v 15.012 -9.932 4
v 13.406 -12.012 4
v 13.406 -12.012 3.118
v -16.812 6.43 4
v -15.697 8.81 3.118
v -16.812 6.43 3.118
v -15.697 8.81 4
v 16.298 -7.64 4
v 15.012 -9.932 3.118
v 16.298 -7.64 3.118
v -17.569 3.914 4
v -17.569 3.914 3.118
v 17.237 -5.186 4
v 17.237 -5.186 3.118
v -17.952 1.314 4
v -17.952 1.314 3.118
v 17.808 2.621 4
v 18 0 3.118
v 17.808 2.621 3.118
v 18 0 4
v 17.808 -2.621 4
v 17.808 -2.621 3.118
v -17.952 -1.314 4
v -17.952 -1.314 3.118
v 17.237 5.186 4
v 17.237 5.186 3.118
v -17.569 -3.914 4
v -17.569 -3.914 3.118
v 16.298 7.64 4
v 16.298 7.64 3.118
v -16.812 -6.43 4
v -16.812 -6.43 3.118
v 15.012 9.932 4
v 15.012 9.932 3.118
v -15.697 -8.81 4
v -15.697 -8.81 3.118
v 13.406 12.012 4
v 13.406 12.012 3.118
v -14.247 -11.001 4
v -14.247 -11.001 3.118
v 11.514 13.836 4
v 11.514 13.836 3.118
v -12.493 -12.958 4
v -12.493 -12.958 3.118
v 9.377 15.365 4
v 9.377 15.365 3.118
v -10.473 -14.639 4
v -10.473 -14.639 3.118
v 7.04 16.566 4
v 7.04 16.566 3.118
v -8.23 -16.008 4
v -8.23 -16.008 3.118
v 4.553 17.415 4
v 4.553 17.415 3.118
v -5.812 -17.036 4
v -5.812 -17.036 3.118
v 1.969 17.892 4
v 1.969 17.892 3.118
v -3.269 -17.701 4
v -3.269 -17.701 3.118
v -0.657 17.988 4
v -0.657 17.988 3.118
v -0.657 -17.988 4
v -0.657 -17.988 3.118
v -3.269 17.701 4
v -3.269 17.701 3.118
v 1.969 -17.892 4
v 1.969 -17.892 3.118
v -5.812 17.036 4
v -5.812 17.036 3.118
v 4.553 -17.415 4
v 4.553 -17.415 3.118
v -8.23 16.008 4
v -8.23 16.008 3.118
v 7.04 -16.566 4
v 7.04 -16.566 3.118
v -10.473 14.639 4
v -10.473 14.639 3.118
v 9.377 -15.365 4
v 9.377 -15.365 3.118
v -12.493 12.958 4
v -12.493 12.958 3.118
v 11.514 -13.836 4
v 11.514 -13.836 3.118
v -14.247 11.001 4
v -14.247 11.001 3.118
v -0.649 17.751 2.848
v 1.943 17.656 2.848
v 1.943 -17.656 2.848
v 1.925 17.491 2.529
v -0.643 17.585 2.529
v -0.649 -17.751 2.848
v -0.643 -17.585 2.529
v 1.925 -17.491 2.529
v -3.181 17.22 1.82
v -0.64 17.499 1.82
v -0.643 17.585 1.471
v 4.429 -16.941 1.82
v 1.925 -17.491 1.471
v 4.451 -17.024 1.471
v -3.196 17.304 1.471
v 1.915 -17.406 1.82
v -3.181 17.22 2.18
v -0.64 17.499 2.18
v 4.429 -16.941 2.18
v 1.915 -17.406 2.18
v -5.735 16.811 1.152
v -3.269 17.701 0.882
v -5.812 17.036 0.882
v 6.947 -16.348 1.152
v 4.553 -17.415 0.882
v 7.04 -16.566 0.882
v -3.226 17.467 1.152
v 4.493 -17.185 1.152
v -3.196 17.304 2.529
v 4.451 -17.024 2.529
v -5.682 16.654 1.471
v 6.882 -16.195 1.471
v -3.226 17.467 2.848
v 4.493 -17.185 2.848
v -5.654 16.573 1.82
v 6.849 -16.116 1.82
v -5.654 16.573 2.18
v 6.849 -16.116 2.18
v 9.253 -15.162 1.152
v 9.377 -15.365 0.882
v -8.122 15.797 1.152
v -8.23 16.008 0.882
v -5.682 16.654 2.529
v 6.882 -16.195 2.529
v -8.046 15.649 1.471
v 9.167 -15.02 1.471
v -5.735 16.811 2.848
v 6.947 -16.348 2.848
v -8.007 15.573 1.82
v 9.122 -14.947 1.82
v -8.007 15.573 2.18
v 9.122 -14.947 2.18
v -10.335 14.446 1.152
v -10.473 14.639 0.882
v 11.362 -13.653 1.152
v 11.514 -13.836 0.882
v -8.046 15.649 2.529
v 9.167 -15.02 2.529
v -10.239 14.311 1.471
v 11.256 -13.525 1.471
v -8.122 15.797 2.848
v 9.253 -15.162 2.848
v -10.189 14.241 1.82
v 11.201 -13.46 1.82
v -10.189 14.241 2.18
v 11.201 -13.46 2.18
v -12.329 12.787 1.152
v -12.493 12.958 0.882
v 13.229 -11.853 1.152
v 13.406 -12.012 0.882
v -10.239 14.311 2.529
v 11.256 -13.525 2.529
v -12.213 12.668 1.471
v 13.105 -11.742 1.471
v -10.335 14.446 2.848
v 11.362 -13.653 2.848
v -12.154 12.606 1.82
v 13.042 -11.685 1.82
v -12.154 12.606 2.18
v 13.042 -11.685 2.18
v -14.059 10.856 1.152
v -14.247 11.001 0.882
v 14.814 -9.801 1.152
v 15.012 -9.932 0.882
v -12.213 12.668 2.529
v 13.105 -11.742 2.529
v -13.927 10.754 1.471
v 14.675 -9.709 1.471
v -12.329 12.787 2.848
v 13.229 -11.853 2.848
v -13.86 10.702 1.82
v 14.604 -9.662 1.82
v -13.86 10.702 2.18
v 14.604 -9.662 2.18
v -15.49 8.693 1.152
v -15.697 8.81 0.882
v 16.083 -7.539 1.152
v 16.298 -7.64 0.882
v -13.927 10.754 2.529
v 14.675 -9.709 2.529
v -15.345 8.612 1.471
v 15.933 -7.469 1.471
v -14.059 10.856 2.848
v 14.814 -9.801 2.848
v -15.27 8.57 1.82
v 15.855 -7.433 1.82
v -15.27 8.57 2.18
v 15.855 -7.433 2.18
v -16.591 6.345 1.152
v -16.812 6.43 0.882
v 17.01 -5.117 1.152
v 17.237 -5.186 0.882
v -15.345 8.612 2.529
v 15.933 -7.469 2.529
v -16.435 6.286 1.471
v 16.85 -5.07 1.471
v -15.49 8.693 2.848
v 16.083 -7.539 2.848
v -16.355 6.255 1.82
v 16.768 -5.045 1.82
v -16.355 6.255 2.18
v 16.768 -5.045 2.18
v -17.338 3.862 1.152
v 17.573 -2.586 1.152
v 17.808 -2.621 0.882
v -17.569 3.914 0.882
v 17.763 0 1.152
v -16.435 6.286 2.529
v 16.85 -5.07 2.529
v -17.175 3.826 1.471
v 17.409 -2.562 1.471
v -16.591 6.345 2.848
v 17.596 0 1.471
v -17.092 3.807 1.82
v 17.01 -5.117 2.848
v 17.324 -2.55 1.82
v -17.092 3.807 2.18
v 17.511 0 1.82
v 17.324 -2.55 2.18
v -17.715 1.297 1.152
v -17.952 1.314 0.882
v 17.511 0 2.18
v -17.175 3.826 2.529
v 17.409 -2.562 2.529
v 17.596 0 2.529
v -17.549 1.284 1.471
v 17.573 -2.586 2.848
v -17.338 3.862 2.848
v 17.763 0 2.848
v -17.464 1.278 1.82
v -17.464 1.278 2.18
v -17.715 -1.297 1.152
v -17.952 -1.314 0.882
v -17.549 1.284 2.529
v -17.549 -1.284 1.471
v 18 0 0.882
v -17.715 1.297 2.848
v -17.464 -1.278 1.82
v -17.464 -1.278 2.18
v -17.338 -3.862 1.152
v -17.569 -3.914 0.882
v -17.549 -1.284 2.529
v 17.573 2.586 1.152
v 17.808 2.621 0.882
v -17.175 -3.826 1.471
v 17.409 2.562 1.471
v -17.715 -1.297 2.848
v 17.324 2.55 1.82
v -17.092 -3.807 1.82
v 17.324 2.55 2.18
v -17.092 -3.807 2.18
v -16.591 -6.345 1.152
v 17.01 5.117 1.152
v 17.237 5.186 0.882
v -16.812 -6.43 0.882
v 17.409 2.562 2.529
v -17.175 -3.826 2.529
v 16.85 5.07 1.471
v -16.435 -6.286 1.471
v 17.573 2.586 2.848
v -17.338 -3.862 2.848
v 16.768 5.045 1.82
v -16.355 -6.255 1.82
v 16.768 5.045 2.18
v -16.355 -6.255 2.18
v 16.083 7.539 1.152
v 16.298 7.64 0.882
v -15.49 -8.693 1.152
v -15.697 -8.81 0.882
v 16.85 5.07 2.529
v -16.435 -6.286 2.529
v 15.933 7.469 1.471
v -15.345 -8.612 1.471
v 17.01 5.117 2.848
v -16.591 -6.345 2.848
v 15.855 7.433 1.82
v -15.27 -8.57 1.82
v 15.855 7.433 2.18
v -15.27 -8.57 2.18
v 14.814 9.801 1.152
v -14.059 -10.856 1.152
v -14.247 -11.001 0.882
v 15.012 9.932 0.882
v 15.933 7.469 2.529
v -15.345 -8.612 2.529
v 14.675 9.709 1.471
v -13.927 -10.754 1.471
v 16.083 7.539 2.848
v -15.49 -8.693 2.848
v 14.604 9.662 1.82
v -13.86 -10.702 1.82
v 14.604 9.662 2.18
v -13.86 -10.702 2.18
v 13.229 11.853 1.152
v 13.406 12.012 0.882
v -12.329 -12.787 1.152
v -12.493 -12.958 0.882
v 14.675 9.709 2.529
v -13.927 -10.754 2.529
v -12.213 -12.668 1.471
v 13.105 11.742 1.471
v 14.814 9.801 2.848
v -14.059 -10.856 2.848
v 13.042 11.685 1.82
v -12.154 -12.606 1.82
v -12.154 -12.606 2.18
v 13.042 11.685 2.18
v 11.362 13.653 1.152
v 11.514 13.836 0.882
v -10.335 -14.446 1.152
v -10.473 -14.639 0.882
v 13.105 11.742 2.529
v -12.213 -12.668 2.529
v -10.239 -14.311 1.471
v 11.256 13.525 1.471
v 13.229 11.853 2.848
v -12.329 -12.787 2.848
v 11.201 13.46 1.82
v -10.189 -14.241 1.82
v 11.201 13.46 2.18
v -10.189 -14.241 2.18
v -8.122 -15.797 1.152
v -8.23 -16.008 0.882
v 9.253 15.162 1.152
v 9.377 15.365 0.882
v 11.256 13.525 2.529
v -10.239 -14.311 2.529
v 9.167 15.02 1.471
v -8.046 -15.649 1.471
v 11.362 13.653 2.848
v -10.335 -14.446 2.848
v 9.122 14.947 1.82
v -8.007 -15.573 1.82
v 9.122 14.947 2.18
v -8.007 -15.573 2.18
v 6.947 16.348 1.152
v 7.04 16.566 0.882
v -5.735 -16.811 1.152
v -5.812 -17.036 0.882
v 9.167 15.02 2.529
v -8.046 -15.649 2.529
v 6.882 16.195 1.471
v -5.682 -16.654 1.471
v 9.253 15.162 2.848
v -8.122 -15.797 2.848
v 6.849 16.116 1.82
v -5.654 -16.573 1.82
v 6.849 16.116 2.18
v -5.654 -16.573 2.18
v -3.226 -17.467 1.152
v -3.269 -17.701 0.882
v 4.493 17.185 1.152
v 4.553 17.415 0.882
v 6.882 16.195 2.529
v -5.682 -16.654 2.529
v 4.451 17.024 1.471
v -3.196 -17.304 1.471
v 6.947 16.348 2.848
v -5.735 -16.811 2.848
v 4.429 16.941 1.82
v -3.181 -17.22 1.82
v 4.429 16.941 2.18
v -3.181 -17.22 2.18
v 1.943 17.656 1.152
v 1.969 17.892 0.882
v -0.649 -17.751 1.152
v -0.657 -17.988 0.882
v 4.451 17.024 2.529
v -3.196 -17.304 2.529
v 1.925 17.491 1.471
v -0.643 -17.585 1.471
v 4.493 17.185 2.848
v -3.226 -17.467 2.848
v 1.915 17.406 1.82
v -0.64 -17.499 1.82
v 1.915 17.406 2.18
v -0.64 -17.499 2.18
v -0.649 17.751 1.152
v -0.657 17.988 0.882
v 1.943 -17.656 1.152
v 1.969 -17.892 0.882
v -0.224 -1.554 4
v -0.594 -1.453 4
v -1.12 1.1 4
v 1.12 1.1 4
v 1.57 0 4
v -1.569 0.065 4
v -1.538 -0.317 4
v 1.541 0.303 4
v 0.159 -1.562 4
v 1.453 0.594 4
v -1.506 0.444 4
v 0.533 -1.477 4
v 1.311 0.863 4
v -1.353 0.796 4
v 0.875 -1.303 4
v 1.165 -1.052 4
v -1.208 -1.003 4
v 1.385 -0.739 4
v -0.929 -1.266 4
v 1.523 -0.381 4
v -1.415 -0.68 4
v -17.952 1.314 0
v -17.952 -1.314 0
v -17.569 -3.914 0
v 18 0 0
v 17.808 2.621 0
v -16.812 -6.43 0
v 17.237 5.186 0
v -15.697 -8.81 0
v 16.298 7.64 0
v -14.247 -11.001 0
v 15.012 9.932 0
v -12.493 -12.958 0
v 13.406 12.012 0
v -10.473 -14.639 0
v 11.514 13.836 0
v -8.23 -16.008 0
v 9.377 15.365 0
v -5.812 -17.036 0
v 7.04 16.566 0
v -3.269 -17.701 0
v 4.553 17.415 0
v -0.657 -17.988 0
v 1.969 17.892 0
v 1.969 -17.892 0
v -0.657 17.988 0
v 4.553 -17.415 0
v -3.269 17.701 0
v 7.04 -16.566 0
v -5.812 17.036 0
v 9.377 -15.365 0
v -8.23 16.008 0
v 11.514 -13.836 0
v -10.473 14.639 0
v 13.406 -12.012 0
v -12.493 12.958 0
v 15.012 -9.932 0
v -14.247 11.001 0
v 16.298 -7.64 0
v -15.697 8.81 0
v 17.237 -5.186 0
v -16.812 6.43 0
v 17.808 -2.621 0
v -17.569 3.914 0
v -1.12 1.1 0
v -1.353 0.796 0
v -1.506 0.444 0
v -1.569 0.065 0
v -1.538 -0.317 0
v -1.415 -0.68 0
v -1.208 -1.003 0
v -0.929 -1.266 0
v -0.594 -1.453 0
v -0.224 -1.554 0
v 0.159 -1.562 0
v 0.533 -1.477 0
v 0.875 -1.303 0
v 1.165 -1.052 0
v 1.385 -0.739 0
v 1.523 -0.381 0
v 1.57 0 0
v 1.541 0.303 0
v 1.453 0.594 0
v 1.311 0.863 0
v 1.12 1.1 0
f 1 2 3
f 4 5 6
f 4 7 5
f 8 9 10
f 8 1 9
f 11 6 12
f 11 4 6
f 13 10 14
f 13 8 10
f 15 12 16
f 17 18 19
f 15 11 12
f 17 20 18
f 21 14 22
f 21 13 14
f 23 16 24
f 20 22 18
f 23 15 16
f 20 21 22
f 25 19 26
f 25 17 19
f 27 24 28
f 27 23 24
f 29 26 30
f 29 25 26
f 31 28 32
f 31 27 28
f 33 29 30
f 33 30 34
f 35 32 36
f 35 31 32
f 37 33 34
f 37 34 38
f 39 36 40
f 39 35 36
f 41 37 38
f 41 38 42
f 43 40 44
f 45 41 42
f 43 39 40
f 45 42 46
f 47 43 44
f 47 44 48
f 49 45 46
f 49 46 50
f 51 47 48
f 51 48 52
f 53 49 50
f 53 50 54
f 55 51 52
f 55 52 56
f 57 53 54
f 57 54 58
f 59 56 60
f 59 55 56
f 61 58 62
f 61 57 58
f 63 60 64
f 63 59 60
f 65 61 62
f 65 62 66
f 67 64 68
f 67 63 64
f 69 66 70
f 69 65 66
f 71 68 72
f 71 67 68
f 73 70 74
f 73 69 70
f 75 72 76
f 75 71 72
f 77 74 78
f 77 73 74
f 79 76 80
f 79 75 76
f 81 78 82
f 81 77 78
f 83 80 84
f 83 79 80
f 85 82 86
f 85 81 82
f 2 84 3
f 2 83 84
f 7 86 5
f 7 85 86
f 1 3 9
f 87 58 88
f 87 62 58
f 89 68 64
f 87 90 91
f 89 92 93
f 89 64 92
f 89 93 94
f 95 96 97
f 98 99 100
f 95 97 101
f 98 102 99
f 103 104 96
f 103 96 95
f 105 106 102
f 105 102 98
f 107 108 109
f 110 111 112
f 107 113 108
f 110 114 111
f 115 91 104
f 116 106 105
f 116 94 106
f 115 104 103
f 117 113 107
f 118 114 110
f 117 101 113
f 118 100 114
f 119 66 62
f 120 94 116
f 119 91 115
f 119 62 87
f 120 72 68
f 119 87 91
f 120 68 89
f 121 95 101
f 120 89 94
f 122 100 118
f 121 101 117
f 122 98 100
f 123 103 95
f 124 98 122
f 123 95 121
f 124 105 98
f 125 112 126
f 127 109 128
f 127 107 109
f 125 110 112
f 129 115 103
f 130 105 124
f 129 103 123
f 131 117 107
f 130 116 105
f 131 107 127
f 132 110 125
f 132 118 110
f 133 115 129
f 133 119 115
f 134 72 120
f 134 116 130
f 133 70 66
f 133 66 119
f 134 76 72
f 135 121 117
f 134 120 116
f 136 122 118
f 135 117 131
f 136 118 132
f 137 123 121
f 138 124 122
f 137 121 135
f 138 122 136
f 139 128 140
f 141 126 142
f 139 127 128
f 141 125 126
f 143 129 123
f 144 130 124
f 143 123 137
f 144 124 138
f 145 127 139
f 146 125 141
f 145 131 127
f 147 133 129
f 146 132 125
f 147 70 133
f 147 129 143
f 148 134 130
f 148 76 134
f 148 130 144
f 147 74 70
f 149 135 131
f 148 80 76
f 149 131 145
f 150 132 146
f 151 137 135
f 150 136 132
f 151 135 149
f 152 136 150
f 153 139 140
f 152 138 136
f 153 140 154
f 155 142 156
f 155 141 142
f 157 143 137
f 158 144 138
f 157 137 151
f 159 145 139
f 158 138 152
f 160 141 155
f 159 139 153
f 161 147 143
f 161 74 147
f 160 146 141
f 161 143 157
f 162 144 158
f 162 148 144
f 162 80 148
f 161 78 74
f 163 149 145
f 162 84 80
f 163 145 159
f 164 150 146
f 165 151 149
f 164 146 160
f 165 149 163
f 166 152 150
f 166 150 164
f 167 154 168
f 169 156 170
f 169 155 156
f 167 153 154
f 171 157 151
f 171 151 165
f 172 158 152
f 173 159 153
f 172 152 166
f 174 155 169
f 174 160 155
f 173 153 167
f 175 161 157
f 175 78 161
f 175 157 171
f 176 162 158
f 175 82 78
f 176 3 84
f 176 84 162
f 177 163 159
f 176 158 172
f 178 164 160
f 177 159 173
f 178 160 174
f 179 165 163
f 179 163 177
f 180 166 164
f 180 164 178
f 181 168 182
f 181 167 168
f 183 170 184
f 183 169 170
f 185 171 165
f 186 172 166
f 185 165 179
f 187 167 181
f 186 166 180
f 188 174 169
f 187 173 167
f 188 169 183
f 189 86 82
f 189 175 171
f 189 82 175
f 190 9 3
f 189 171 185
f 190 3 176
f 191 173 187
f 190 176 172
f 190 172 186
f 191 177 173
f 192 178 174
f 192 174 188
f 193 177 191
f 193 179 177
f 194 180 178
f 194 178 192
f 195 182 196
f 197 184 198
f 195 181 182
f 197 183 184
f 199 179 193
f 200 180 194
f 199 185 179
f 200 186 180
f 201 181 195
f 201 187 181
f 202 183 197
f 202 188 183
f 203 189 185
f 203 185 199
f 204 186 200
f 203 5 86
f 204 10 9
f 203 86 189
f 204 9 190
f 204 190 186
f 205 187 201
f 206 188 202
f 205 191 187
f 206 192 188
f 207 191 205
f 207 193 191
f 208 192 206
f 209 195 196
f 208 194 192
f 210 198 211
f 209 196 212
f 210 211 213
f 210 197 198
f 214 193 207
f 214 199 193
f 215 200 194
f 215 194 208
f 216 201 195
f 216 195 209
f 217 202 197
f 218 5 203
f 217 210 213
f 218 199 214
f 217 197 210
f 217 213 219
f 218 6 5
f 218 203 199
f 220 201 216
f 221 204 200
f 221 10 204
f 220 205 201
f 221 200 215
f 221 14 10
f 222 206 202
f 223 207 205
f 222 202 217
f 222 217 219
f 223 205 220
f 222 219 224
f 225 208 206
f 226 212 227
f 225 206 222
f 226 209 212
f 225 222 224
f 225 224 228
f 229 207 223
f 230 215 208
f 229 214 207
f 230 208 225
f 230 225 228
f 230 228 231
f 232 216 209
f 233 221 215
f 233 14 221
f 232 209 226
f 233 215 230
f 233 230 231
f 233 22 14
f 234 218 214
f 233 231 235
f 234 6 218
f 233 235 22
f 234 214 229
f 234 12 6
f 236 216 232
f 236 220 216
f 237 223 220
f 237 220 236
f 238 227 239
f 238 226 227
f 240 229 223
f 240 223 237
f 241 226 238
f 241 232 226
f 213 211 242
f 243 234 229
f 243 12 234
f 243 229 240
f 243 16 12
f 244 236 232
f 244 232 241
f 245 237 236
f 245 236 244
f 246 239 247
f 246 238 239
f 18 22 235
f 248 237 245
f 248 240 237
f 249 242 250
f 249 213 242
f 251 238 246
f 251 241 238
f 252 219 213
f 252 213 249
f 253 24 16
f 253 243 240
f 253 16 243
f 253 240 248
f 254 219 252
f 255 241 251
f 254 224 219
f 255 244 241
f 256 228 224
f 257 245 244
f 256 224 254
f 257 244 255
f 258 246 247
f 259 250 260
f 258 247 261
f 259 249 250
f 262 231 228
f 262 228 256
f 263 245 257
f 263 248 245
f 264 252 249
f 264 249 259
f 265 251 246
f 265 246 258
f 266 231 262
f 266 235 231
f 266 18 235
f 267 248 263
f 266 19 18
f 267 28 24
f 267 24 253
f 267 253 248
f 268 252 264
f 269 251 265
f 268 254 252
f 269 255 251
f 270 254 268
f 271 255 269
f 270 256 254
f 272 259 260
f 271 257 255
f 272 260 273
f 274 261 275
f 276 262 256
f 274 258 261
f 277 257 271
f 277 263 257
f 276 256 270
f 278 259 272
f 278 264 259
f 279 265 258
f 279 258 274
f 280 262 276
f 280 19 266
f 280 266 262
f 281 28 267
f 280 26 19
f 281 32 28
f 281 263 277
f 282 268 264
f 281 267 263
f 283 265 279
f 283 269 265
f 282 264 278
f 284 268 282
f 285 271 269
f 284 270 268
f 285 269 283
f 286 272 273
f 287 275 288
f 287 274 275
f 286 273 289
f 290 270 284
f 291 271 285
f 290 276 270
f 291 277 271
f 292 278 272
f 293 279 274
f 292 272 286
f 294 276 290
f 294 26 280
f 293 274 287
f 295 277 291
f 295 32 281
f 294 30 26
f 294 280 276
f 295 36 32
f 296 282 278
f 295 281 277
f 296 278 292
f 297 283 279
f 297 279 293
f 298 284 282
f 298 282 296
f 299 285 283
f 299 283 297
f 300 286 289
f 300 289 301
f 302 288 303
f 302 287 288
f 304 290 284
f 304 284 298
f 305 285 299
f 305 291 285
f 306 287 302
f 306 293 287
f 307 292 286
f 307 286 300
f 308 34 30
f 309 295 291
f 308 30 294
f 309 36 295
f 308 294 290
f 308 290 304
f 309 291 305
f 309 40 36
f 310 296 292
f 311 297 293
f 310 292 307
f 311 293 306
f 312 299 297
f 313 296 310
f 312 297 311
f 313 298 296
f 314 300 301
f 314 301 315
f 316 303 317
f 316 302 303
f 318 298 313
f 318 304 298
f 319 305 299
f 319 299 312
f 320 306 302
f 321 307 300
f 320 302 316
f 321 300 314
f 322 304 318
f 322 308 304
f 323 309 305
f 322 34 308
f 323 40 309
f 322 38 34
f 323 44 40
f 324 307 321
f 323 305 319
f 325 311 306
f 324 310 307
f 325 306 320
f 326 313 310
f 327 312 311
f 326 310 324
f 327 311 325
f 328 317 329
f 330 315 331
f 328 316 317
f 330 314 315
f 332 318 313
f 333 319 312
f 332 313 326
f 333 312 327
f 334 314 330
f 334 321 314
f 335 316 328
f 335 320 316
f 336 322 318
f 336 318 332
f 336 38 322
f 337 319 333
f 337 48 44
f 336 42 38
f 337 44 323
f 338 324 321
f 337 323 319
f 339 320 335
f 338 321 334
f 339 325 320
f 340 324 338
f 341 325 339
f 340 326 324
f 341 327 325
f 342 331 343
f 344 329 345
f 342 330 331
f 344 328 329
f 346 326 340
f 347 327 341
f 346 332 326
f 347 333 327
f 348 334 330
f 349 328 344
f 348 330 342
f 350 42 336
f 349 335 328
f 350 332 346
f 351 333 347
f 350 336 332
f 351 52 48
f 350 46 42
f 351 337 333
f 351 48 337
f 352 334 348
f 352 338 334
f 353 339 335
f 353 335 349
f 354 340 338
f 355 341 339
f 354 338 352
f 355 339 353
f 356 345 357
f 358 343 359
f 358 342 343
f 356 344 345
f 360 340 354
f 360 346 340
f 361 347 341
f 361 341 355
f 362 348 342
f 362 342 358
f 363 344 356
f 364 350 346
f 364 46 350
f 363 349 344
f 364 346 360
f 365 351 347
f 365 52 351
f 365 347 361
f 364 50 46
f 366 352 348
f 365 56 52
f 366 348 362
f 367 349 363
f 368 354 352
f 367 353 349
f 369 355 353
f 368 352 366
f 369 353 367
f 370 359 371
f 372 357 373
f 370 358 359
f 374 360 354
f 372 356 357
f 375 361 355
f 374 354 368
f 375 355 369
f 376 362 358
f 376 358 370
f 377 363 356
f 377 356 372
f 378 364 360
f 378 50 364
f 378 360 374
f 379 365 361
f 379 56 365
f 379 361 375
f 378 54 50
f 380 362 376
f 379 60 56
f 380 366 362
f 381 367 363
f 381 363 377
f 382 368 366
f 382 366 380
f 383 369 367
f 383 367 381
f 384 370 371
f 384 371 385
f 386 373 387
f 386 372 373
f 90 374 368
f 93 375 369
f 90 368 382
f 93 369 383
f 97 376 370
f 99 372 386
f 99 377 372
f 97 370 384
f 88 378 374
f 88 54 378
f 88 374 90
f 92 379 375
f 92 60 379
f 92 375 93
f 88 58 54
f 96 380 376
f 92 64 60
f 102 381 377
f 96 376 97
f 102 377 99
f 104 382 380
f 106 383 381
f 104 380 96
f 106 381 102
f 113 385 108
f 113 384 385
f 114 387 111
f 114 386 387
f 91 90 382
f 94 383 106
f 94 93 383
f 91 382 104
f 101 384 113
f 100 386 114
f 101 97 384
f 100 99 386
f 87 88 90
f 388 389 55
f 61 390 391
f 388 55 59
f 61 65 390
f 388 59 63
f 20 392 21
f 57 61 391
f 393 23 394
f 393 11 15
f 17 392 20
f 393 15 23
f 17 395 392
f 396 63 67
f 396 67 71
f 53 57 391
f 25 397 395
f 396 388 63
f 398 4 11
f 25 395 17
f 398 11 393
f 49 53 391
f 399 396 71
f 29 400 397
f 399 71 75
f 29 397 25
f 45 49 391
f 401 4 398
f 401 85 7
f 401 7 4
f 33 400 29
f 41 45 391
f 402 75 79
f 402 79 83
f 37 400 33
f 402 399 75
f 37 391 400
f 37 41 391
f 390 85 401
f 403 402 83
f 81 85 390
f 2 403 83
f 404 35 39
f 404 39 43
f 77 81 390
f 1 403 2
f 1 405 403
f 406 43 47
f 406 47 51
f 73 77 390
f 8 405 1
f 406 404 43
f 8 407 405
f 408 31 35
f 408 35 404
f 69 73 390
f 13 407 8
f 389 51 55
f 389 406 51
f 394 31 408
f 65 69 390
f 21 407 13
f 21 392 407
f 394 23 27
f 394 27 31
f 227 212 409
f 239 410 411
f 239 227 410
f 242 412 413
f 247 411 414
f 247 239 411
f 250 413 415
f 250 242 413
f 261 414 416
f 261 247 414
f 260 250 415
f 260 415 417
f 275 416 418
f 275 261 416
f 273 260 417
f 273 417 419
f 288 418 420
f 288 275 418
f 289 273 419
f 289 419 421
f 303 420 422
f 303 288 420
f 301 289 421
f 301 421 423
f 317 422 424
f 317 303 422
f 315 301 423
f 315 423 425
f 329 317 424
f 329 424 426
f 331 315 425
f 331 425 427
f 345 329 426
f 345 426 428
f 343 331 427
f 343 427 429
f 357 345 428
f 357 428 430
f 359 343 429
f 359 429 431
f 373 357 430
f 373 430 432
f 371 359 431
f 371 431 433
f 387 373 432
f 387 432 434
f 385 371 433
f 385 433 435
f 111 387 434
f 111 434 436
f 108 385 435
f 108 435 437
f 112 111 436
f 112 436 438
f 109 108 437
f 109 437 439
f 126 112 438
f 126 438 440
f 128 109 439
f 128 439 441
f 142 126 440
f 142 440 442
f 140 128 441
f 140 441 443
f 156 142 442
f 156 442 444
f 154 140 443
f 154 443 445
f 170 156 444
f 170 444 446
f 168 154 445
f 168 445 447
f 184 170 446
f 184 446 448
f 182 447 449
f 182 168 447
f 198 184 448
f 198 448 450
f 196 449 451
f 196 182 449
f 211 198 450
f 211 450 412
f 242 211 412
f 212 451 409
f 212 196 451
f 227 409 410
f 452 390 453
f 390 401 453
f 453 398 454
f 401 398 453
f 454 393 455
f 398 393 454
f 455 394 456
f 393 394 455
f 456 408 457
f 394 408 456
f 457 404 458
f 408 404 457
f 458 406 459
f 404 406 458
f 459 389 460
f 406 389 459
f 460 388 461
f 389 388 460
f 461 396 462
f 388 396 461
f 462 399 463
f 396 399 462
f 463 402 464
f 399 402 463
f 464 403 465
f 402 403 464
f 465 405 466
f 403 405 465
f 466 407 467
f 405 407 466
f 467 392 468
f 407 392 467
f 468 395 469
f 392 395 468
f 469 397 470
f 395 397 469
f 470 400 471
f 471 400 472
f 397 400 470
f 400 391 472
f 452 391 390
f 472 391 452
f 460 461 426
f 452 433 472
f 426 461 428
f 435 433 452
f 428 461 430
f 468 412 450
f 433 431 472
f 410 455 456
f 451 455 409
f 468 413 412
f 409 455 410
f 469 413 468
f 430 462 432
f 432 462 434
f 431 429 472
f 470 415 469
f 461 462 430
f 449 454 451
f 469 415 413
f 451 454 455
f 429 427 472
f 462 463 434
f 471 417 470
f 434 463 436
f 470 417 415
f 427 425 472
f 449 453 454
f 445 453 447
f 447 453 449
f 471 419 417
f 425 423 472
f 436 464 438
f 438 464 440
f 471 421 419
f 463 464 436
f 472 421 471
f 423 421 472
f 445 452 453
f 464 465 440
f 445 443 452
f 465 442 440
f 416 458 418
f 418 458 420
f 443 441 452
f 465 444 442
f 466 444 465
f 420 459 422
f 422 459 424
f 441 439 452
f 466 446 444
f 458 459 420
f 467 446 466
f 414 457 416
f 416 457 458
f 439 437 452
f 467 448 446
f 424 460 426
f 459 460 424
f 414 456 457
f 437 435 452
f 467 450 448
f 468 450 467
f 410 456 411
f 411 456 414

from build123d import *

# Parameters (mm, degrees)
TORUS002_R        = 1.5
BOX084016_W       = 10
BOX084016_H       = 10
BOX084016_DEPTH   = 12
CYLINDER028_R     = 1.57
CYLINDER028_DEPTH = 10
CYLINDER012_R     = 18
CYLINDER012_DEPTH = 4


with BuildPart() as torus002:
    # Torus002 → Torus002 (revolve)
    with BuildSketch(Plane(origin=(0, 0, 2), x_dir=(1, 0, 0), z_dir=(0, -1, 0))):
        with Locations((19, 0)):
            Circle(TORUS002_R)
    revolve(axis=Axis((0, 0, 2), (0, 0, 1)))


with BuildPart() as cube067:
    # Box084016 → Box084016 (new body)
    with BuildSketch(Plane(origin=(-5, 1.1, -1.5), x_dir=(1, 0, 0), z_dir=(0, 0, 1))):
        with Locations((5, 5)):
            Rectangle(BOX084016_W, BOX084016_H)
    extrude(amount=BOX084016_DEPTH)


with BuildPart() as cut057:
    # Cylinder028 → Cylinder028 (new body)
    with BuildSketch(Plane.XY.offset(-1)):
        Circle(CYLINDER028_R)
    extrude(amount=CYLINDER028_DEPTH)

    # Cut057: cut Cube067
    add(cube067.part, mode=Mode.SUBTRACT)


with BuildPart() as cut063:
    # Cylinder012 → Cylinder012 (new body)
    with BuildSketch(Plane.XY):
        Circle(CYLINDER012_R)
    extrude(amount=CYLINDER012_DEPTH)

    # Cut062: cut Cut057
    add(cut057.part, mode=Mode.SUBTRACT)

    # Cut063: cut Torus002
    add(torus002.part, mode=Mode.SUBTRACT)


solid = cut063.part
